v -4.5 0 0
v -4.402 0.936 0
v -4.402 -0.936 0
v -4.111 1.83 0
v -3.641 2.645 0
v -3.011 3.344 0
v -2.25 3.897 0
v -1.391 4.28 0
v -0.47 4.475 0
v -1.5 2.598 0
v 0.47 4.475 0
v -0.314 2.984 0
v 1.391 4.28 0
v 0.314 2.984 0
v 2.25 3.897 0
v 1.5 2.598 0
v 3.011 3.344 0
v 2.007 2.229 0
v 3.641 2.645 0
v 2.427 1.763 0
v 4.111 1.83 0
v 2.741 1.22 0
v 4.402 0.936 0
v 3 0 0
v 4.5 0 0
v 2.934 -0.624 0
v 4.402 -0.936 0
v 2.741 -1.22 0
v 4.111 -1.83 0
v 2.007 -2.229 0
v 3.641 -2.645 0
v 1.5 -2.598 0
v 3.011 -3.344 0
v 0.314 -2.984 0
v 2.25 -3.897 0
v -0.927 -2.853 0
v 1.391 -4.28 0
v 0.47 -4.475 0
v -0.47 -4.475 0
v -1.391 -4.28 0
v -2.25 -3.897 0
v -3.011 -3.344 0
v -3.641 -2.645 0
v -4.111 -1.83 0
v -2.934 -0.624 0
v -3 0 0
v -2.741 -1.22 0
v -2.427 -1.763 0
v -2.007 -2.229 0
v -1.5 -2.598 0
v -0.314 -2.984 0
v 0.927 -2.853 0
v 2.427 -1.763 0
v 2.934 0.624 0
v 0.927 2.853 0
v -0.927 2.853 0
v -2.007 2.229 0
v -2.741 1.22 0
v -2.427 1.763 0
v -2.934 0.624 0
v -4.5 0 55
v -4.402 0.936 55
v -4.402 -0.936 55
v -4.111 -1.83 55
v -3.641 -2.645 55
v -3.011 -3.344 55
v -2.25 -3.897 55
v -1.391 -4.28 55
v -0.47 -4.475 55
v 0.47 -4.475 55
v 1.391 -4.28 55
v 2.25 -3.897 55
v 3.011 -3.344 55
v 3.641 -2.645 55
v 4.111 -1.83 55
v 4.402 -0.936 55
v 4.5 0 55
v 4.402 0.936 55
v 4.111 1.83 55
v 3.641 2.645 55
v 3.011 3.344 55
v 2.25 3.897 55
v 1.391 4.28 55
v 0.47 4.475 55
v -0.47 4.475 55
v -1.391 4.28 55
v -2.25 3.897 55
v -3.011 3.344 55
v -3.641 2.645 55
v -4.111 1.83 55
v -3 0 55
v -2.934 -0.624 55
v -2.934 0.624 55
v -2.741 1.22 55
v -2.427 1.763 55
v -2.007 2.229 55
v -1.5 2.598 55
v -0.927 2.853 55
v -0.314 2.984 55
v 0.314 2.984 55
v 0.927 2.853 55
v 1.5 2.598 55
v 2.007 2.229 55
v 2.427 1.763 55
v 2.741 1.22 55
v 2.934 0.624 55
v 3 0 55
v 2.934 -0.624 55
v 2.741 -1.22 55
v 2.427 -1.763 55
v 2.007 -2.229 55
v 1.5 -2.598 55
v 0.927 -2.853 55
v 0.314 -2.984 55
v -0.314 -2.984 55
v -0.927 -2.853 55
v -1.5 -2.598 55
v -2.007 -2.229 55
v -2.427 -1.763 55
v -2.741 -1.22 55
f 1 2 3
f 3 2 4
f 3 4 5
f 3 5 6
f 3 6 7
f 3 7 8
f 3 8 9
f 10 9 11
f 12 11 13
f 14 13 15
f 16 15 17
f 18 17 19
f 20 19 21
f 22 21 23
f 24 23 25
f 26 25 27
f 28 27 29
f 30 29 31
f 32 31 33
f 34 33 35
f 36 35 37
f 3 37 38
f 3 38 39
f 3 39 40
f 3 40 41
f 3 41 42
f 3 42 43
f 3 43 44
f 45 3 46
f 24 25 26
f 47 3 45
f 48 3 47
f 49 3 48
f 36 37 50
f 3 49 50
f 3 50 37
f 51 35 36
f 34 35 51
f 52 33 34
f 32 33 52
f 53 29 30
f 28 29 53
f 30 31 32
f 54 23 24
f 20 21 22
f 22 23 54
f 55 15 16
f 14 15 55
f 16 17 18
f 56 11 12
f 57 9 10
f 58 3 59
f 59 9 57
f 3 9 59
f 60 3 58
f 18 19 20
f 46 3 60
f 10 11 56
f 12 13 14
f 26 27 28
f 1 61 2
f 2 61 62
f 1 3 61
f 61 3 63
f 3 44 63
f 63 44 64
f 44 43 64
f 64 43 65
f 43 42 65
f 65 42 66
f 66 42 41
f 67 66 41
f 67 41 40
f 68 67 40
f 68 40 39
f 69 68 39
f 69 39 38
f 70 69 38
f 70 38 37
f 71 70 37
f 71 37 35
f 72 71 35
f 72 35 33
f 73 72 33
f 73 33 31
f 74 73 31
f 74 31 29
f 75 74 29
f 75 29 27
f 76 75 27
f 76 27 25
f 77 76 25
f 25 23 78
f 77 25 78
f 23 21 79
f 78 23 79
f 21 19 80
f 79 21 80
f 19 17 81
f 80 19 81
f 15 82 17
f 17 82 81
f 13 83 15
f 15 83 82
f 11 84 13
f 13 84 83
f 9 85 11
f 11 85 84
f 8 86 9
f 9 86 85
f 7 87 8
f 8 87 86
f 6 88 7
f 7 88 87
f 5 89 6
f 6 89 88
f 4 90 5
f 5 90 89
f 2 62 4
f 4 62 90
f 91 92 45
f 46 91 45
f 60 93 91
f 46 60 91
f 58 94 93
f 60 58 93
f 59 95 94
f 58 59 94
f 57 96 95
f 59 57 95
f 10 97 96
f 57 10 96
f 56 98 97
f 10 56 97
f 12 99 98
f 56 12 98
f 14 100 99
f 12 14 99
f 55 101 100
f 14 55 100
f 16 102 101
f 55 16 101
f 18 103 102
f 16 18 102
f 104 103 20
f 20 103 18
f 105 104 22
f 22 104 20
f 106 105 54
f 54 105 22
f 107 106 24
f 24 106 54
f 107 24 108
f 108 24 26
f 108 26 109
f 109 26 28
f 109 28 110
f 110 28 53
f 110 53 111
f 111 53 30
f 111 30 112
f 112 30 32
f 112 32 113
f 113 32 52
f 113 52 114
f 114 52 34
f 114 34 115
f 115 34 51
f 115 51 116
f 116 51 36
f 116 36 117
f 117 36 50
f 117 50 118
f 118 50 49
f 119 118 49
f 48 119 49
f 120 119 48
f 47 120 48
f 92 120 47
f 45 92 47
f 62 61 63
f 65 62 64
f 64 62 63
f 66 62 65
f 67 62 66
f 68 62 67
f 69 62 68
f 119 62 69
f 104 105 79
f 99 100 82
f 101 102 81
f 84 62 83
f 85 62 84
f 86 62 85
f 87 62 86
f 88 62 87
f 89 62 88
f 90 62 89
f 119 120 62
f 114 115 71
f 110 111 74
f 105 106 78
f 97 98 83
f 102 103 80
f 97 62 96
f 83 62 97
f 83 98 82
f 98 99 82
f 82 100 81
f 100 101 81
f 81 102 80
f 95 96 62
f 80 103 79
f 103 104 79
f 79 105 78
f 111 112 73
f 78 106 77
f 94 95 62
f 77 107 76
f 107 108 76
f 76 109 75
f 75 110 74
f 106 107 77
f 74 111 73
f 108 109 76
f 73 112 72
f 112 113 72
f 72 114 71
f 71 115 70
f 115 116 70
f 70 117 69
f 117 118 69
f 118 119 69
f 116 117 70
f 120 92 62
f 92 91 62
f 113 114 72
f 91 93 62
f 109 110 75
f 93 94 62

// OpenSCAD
$fn=30;
difference() {
    cylinder( r=4.5, h=55 );
    cylinder( r=3, h=60);
};
